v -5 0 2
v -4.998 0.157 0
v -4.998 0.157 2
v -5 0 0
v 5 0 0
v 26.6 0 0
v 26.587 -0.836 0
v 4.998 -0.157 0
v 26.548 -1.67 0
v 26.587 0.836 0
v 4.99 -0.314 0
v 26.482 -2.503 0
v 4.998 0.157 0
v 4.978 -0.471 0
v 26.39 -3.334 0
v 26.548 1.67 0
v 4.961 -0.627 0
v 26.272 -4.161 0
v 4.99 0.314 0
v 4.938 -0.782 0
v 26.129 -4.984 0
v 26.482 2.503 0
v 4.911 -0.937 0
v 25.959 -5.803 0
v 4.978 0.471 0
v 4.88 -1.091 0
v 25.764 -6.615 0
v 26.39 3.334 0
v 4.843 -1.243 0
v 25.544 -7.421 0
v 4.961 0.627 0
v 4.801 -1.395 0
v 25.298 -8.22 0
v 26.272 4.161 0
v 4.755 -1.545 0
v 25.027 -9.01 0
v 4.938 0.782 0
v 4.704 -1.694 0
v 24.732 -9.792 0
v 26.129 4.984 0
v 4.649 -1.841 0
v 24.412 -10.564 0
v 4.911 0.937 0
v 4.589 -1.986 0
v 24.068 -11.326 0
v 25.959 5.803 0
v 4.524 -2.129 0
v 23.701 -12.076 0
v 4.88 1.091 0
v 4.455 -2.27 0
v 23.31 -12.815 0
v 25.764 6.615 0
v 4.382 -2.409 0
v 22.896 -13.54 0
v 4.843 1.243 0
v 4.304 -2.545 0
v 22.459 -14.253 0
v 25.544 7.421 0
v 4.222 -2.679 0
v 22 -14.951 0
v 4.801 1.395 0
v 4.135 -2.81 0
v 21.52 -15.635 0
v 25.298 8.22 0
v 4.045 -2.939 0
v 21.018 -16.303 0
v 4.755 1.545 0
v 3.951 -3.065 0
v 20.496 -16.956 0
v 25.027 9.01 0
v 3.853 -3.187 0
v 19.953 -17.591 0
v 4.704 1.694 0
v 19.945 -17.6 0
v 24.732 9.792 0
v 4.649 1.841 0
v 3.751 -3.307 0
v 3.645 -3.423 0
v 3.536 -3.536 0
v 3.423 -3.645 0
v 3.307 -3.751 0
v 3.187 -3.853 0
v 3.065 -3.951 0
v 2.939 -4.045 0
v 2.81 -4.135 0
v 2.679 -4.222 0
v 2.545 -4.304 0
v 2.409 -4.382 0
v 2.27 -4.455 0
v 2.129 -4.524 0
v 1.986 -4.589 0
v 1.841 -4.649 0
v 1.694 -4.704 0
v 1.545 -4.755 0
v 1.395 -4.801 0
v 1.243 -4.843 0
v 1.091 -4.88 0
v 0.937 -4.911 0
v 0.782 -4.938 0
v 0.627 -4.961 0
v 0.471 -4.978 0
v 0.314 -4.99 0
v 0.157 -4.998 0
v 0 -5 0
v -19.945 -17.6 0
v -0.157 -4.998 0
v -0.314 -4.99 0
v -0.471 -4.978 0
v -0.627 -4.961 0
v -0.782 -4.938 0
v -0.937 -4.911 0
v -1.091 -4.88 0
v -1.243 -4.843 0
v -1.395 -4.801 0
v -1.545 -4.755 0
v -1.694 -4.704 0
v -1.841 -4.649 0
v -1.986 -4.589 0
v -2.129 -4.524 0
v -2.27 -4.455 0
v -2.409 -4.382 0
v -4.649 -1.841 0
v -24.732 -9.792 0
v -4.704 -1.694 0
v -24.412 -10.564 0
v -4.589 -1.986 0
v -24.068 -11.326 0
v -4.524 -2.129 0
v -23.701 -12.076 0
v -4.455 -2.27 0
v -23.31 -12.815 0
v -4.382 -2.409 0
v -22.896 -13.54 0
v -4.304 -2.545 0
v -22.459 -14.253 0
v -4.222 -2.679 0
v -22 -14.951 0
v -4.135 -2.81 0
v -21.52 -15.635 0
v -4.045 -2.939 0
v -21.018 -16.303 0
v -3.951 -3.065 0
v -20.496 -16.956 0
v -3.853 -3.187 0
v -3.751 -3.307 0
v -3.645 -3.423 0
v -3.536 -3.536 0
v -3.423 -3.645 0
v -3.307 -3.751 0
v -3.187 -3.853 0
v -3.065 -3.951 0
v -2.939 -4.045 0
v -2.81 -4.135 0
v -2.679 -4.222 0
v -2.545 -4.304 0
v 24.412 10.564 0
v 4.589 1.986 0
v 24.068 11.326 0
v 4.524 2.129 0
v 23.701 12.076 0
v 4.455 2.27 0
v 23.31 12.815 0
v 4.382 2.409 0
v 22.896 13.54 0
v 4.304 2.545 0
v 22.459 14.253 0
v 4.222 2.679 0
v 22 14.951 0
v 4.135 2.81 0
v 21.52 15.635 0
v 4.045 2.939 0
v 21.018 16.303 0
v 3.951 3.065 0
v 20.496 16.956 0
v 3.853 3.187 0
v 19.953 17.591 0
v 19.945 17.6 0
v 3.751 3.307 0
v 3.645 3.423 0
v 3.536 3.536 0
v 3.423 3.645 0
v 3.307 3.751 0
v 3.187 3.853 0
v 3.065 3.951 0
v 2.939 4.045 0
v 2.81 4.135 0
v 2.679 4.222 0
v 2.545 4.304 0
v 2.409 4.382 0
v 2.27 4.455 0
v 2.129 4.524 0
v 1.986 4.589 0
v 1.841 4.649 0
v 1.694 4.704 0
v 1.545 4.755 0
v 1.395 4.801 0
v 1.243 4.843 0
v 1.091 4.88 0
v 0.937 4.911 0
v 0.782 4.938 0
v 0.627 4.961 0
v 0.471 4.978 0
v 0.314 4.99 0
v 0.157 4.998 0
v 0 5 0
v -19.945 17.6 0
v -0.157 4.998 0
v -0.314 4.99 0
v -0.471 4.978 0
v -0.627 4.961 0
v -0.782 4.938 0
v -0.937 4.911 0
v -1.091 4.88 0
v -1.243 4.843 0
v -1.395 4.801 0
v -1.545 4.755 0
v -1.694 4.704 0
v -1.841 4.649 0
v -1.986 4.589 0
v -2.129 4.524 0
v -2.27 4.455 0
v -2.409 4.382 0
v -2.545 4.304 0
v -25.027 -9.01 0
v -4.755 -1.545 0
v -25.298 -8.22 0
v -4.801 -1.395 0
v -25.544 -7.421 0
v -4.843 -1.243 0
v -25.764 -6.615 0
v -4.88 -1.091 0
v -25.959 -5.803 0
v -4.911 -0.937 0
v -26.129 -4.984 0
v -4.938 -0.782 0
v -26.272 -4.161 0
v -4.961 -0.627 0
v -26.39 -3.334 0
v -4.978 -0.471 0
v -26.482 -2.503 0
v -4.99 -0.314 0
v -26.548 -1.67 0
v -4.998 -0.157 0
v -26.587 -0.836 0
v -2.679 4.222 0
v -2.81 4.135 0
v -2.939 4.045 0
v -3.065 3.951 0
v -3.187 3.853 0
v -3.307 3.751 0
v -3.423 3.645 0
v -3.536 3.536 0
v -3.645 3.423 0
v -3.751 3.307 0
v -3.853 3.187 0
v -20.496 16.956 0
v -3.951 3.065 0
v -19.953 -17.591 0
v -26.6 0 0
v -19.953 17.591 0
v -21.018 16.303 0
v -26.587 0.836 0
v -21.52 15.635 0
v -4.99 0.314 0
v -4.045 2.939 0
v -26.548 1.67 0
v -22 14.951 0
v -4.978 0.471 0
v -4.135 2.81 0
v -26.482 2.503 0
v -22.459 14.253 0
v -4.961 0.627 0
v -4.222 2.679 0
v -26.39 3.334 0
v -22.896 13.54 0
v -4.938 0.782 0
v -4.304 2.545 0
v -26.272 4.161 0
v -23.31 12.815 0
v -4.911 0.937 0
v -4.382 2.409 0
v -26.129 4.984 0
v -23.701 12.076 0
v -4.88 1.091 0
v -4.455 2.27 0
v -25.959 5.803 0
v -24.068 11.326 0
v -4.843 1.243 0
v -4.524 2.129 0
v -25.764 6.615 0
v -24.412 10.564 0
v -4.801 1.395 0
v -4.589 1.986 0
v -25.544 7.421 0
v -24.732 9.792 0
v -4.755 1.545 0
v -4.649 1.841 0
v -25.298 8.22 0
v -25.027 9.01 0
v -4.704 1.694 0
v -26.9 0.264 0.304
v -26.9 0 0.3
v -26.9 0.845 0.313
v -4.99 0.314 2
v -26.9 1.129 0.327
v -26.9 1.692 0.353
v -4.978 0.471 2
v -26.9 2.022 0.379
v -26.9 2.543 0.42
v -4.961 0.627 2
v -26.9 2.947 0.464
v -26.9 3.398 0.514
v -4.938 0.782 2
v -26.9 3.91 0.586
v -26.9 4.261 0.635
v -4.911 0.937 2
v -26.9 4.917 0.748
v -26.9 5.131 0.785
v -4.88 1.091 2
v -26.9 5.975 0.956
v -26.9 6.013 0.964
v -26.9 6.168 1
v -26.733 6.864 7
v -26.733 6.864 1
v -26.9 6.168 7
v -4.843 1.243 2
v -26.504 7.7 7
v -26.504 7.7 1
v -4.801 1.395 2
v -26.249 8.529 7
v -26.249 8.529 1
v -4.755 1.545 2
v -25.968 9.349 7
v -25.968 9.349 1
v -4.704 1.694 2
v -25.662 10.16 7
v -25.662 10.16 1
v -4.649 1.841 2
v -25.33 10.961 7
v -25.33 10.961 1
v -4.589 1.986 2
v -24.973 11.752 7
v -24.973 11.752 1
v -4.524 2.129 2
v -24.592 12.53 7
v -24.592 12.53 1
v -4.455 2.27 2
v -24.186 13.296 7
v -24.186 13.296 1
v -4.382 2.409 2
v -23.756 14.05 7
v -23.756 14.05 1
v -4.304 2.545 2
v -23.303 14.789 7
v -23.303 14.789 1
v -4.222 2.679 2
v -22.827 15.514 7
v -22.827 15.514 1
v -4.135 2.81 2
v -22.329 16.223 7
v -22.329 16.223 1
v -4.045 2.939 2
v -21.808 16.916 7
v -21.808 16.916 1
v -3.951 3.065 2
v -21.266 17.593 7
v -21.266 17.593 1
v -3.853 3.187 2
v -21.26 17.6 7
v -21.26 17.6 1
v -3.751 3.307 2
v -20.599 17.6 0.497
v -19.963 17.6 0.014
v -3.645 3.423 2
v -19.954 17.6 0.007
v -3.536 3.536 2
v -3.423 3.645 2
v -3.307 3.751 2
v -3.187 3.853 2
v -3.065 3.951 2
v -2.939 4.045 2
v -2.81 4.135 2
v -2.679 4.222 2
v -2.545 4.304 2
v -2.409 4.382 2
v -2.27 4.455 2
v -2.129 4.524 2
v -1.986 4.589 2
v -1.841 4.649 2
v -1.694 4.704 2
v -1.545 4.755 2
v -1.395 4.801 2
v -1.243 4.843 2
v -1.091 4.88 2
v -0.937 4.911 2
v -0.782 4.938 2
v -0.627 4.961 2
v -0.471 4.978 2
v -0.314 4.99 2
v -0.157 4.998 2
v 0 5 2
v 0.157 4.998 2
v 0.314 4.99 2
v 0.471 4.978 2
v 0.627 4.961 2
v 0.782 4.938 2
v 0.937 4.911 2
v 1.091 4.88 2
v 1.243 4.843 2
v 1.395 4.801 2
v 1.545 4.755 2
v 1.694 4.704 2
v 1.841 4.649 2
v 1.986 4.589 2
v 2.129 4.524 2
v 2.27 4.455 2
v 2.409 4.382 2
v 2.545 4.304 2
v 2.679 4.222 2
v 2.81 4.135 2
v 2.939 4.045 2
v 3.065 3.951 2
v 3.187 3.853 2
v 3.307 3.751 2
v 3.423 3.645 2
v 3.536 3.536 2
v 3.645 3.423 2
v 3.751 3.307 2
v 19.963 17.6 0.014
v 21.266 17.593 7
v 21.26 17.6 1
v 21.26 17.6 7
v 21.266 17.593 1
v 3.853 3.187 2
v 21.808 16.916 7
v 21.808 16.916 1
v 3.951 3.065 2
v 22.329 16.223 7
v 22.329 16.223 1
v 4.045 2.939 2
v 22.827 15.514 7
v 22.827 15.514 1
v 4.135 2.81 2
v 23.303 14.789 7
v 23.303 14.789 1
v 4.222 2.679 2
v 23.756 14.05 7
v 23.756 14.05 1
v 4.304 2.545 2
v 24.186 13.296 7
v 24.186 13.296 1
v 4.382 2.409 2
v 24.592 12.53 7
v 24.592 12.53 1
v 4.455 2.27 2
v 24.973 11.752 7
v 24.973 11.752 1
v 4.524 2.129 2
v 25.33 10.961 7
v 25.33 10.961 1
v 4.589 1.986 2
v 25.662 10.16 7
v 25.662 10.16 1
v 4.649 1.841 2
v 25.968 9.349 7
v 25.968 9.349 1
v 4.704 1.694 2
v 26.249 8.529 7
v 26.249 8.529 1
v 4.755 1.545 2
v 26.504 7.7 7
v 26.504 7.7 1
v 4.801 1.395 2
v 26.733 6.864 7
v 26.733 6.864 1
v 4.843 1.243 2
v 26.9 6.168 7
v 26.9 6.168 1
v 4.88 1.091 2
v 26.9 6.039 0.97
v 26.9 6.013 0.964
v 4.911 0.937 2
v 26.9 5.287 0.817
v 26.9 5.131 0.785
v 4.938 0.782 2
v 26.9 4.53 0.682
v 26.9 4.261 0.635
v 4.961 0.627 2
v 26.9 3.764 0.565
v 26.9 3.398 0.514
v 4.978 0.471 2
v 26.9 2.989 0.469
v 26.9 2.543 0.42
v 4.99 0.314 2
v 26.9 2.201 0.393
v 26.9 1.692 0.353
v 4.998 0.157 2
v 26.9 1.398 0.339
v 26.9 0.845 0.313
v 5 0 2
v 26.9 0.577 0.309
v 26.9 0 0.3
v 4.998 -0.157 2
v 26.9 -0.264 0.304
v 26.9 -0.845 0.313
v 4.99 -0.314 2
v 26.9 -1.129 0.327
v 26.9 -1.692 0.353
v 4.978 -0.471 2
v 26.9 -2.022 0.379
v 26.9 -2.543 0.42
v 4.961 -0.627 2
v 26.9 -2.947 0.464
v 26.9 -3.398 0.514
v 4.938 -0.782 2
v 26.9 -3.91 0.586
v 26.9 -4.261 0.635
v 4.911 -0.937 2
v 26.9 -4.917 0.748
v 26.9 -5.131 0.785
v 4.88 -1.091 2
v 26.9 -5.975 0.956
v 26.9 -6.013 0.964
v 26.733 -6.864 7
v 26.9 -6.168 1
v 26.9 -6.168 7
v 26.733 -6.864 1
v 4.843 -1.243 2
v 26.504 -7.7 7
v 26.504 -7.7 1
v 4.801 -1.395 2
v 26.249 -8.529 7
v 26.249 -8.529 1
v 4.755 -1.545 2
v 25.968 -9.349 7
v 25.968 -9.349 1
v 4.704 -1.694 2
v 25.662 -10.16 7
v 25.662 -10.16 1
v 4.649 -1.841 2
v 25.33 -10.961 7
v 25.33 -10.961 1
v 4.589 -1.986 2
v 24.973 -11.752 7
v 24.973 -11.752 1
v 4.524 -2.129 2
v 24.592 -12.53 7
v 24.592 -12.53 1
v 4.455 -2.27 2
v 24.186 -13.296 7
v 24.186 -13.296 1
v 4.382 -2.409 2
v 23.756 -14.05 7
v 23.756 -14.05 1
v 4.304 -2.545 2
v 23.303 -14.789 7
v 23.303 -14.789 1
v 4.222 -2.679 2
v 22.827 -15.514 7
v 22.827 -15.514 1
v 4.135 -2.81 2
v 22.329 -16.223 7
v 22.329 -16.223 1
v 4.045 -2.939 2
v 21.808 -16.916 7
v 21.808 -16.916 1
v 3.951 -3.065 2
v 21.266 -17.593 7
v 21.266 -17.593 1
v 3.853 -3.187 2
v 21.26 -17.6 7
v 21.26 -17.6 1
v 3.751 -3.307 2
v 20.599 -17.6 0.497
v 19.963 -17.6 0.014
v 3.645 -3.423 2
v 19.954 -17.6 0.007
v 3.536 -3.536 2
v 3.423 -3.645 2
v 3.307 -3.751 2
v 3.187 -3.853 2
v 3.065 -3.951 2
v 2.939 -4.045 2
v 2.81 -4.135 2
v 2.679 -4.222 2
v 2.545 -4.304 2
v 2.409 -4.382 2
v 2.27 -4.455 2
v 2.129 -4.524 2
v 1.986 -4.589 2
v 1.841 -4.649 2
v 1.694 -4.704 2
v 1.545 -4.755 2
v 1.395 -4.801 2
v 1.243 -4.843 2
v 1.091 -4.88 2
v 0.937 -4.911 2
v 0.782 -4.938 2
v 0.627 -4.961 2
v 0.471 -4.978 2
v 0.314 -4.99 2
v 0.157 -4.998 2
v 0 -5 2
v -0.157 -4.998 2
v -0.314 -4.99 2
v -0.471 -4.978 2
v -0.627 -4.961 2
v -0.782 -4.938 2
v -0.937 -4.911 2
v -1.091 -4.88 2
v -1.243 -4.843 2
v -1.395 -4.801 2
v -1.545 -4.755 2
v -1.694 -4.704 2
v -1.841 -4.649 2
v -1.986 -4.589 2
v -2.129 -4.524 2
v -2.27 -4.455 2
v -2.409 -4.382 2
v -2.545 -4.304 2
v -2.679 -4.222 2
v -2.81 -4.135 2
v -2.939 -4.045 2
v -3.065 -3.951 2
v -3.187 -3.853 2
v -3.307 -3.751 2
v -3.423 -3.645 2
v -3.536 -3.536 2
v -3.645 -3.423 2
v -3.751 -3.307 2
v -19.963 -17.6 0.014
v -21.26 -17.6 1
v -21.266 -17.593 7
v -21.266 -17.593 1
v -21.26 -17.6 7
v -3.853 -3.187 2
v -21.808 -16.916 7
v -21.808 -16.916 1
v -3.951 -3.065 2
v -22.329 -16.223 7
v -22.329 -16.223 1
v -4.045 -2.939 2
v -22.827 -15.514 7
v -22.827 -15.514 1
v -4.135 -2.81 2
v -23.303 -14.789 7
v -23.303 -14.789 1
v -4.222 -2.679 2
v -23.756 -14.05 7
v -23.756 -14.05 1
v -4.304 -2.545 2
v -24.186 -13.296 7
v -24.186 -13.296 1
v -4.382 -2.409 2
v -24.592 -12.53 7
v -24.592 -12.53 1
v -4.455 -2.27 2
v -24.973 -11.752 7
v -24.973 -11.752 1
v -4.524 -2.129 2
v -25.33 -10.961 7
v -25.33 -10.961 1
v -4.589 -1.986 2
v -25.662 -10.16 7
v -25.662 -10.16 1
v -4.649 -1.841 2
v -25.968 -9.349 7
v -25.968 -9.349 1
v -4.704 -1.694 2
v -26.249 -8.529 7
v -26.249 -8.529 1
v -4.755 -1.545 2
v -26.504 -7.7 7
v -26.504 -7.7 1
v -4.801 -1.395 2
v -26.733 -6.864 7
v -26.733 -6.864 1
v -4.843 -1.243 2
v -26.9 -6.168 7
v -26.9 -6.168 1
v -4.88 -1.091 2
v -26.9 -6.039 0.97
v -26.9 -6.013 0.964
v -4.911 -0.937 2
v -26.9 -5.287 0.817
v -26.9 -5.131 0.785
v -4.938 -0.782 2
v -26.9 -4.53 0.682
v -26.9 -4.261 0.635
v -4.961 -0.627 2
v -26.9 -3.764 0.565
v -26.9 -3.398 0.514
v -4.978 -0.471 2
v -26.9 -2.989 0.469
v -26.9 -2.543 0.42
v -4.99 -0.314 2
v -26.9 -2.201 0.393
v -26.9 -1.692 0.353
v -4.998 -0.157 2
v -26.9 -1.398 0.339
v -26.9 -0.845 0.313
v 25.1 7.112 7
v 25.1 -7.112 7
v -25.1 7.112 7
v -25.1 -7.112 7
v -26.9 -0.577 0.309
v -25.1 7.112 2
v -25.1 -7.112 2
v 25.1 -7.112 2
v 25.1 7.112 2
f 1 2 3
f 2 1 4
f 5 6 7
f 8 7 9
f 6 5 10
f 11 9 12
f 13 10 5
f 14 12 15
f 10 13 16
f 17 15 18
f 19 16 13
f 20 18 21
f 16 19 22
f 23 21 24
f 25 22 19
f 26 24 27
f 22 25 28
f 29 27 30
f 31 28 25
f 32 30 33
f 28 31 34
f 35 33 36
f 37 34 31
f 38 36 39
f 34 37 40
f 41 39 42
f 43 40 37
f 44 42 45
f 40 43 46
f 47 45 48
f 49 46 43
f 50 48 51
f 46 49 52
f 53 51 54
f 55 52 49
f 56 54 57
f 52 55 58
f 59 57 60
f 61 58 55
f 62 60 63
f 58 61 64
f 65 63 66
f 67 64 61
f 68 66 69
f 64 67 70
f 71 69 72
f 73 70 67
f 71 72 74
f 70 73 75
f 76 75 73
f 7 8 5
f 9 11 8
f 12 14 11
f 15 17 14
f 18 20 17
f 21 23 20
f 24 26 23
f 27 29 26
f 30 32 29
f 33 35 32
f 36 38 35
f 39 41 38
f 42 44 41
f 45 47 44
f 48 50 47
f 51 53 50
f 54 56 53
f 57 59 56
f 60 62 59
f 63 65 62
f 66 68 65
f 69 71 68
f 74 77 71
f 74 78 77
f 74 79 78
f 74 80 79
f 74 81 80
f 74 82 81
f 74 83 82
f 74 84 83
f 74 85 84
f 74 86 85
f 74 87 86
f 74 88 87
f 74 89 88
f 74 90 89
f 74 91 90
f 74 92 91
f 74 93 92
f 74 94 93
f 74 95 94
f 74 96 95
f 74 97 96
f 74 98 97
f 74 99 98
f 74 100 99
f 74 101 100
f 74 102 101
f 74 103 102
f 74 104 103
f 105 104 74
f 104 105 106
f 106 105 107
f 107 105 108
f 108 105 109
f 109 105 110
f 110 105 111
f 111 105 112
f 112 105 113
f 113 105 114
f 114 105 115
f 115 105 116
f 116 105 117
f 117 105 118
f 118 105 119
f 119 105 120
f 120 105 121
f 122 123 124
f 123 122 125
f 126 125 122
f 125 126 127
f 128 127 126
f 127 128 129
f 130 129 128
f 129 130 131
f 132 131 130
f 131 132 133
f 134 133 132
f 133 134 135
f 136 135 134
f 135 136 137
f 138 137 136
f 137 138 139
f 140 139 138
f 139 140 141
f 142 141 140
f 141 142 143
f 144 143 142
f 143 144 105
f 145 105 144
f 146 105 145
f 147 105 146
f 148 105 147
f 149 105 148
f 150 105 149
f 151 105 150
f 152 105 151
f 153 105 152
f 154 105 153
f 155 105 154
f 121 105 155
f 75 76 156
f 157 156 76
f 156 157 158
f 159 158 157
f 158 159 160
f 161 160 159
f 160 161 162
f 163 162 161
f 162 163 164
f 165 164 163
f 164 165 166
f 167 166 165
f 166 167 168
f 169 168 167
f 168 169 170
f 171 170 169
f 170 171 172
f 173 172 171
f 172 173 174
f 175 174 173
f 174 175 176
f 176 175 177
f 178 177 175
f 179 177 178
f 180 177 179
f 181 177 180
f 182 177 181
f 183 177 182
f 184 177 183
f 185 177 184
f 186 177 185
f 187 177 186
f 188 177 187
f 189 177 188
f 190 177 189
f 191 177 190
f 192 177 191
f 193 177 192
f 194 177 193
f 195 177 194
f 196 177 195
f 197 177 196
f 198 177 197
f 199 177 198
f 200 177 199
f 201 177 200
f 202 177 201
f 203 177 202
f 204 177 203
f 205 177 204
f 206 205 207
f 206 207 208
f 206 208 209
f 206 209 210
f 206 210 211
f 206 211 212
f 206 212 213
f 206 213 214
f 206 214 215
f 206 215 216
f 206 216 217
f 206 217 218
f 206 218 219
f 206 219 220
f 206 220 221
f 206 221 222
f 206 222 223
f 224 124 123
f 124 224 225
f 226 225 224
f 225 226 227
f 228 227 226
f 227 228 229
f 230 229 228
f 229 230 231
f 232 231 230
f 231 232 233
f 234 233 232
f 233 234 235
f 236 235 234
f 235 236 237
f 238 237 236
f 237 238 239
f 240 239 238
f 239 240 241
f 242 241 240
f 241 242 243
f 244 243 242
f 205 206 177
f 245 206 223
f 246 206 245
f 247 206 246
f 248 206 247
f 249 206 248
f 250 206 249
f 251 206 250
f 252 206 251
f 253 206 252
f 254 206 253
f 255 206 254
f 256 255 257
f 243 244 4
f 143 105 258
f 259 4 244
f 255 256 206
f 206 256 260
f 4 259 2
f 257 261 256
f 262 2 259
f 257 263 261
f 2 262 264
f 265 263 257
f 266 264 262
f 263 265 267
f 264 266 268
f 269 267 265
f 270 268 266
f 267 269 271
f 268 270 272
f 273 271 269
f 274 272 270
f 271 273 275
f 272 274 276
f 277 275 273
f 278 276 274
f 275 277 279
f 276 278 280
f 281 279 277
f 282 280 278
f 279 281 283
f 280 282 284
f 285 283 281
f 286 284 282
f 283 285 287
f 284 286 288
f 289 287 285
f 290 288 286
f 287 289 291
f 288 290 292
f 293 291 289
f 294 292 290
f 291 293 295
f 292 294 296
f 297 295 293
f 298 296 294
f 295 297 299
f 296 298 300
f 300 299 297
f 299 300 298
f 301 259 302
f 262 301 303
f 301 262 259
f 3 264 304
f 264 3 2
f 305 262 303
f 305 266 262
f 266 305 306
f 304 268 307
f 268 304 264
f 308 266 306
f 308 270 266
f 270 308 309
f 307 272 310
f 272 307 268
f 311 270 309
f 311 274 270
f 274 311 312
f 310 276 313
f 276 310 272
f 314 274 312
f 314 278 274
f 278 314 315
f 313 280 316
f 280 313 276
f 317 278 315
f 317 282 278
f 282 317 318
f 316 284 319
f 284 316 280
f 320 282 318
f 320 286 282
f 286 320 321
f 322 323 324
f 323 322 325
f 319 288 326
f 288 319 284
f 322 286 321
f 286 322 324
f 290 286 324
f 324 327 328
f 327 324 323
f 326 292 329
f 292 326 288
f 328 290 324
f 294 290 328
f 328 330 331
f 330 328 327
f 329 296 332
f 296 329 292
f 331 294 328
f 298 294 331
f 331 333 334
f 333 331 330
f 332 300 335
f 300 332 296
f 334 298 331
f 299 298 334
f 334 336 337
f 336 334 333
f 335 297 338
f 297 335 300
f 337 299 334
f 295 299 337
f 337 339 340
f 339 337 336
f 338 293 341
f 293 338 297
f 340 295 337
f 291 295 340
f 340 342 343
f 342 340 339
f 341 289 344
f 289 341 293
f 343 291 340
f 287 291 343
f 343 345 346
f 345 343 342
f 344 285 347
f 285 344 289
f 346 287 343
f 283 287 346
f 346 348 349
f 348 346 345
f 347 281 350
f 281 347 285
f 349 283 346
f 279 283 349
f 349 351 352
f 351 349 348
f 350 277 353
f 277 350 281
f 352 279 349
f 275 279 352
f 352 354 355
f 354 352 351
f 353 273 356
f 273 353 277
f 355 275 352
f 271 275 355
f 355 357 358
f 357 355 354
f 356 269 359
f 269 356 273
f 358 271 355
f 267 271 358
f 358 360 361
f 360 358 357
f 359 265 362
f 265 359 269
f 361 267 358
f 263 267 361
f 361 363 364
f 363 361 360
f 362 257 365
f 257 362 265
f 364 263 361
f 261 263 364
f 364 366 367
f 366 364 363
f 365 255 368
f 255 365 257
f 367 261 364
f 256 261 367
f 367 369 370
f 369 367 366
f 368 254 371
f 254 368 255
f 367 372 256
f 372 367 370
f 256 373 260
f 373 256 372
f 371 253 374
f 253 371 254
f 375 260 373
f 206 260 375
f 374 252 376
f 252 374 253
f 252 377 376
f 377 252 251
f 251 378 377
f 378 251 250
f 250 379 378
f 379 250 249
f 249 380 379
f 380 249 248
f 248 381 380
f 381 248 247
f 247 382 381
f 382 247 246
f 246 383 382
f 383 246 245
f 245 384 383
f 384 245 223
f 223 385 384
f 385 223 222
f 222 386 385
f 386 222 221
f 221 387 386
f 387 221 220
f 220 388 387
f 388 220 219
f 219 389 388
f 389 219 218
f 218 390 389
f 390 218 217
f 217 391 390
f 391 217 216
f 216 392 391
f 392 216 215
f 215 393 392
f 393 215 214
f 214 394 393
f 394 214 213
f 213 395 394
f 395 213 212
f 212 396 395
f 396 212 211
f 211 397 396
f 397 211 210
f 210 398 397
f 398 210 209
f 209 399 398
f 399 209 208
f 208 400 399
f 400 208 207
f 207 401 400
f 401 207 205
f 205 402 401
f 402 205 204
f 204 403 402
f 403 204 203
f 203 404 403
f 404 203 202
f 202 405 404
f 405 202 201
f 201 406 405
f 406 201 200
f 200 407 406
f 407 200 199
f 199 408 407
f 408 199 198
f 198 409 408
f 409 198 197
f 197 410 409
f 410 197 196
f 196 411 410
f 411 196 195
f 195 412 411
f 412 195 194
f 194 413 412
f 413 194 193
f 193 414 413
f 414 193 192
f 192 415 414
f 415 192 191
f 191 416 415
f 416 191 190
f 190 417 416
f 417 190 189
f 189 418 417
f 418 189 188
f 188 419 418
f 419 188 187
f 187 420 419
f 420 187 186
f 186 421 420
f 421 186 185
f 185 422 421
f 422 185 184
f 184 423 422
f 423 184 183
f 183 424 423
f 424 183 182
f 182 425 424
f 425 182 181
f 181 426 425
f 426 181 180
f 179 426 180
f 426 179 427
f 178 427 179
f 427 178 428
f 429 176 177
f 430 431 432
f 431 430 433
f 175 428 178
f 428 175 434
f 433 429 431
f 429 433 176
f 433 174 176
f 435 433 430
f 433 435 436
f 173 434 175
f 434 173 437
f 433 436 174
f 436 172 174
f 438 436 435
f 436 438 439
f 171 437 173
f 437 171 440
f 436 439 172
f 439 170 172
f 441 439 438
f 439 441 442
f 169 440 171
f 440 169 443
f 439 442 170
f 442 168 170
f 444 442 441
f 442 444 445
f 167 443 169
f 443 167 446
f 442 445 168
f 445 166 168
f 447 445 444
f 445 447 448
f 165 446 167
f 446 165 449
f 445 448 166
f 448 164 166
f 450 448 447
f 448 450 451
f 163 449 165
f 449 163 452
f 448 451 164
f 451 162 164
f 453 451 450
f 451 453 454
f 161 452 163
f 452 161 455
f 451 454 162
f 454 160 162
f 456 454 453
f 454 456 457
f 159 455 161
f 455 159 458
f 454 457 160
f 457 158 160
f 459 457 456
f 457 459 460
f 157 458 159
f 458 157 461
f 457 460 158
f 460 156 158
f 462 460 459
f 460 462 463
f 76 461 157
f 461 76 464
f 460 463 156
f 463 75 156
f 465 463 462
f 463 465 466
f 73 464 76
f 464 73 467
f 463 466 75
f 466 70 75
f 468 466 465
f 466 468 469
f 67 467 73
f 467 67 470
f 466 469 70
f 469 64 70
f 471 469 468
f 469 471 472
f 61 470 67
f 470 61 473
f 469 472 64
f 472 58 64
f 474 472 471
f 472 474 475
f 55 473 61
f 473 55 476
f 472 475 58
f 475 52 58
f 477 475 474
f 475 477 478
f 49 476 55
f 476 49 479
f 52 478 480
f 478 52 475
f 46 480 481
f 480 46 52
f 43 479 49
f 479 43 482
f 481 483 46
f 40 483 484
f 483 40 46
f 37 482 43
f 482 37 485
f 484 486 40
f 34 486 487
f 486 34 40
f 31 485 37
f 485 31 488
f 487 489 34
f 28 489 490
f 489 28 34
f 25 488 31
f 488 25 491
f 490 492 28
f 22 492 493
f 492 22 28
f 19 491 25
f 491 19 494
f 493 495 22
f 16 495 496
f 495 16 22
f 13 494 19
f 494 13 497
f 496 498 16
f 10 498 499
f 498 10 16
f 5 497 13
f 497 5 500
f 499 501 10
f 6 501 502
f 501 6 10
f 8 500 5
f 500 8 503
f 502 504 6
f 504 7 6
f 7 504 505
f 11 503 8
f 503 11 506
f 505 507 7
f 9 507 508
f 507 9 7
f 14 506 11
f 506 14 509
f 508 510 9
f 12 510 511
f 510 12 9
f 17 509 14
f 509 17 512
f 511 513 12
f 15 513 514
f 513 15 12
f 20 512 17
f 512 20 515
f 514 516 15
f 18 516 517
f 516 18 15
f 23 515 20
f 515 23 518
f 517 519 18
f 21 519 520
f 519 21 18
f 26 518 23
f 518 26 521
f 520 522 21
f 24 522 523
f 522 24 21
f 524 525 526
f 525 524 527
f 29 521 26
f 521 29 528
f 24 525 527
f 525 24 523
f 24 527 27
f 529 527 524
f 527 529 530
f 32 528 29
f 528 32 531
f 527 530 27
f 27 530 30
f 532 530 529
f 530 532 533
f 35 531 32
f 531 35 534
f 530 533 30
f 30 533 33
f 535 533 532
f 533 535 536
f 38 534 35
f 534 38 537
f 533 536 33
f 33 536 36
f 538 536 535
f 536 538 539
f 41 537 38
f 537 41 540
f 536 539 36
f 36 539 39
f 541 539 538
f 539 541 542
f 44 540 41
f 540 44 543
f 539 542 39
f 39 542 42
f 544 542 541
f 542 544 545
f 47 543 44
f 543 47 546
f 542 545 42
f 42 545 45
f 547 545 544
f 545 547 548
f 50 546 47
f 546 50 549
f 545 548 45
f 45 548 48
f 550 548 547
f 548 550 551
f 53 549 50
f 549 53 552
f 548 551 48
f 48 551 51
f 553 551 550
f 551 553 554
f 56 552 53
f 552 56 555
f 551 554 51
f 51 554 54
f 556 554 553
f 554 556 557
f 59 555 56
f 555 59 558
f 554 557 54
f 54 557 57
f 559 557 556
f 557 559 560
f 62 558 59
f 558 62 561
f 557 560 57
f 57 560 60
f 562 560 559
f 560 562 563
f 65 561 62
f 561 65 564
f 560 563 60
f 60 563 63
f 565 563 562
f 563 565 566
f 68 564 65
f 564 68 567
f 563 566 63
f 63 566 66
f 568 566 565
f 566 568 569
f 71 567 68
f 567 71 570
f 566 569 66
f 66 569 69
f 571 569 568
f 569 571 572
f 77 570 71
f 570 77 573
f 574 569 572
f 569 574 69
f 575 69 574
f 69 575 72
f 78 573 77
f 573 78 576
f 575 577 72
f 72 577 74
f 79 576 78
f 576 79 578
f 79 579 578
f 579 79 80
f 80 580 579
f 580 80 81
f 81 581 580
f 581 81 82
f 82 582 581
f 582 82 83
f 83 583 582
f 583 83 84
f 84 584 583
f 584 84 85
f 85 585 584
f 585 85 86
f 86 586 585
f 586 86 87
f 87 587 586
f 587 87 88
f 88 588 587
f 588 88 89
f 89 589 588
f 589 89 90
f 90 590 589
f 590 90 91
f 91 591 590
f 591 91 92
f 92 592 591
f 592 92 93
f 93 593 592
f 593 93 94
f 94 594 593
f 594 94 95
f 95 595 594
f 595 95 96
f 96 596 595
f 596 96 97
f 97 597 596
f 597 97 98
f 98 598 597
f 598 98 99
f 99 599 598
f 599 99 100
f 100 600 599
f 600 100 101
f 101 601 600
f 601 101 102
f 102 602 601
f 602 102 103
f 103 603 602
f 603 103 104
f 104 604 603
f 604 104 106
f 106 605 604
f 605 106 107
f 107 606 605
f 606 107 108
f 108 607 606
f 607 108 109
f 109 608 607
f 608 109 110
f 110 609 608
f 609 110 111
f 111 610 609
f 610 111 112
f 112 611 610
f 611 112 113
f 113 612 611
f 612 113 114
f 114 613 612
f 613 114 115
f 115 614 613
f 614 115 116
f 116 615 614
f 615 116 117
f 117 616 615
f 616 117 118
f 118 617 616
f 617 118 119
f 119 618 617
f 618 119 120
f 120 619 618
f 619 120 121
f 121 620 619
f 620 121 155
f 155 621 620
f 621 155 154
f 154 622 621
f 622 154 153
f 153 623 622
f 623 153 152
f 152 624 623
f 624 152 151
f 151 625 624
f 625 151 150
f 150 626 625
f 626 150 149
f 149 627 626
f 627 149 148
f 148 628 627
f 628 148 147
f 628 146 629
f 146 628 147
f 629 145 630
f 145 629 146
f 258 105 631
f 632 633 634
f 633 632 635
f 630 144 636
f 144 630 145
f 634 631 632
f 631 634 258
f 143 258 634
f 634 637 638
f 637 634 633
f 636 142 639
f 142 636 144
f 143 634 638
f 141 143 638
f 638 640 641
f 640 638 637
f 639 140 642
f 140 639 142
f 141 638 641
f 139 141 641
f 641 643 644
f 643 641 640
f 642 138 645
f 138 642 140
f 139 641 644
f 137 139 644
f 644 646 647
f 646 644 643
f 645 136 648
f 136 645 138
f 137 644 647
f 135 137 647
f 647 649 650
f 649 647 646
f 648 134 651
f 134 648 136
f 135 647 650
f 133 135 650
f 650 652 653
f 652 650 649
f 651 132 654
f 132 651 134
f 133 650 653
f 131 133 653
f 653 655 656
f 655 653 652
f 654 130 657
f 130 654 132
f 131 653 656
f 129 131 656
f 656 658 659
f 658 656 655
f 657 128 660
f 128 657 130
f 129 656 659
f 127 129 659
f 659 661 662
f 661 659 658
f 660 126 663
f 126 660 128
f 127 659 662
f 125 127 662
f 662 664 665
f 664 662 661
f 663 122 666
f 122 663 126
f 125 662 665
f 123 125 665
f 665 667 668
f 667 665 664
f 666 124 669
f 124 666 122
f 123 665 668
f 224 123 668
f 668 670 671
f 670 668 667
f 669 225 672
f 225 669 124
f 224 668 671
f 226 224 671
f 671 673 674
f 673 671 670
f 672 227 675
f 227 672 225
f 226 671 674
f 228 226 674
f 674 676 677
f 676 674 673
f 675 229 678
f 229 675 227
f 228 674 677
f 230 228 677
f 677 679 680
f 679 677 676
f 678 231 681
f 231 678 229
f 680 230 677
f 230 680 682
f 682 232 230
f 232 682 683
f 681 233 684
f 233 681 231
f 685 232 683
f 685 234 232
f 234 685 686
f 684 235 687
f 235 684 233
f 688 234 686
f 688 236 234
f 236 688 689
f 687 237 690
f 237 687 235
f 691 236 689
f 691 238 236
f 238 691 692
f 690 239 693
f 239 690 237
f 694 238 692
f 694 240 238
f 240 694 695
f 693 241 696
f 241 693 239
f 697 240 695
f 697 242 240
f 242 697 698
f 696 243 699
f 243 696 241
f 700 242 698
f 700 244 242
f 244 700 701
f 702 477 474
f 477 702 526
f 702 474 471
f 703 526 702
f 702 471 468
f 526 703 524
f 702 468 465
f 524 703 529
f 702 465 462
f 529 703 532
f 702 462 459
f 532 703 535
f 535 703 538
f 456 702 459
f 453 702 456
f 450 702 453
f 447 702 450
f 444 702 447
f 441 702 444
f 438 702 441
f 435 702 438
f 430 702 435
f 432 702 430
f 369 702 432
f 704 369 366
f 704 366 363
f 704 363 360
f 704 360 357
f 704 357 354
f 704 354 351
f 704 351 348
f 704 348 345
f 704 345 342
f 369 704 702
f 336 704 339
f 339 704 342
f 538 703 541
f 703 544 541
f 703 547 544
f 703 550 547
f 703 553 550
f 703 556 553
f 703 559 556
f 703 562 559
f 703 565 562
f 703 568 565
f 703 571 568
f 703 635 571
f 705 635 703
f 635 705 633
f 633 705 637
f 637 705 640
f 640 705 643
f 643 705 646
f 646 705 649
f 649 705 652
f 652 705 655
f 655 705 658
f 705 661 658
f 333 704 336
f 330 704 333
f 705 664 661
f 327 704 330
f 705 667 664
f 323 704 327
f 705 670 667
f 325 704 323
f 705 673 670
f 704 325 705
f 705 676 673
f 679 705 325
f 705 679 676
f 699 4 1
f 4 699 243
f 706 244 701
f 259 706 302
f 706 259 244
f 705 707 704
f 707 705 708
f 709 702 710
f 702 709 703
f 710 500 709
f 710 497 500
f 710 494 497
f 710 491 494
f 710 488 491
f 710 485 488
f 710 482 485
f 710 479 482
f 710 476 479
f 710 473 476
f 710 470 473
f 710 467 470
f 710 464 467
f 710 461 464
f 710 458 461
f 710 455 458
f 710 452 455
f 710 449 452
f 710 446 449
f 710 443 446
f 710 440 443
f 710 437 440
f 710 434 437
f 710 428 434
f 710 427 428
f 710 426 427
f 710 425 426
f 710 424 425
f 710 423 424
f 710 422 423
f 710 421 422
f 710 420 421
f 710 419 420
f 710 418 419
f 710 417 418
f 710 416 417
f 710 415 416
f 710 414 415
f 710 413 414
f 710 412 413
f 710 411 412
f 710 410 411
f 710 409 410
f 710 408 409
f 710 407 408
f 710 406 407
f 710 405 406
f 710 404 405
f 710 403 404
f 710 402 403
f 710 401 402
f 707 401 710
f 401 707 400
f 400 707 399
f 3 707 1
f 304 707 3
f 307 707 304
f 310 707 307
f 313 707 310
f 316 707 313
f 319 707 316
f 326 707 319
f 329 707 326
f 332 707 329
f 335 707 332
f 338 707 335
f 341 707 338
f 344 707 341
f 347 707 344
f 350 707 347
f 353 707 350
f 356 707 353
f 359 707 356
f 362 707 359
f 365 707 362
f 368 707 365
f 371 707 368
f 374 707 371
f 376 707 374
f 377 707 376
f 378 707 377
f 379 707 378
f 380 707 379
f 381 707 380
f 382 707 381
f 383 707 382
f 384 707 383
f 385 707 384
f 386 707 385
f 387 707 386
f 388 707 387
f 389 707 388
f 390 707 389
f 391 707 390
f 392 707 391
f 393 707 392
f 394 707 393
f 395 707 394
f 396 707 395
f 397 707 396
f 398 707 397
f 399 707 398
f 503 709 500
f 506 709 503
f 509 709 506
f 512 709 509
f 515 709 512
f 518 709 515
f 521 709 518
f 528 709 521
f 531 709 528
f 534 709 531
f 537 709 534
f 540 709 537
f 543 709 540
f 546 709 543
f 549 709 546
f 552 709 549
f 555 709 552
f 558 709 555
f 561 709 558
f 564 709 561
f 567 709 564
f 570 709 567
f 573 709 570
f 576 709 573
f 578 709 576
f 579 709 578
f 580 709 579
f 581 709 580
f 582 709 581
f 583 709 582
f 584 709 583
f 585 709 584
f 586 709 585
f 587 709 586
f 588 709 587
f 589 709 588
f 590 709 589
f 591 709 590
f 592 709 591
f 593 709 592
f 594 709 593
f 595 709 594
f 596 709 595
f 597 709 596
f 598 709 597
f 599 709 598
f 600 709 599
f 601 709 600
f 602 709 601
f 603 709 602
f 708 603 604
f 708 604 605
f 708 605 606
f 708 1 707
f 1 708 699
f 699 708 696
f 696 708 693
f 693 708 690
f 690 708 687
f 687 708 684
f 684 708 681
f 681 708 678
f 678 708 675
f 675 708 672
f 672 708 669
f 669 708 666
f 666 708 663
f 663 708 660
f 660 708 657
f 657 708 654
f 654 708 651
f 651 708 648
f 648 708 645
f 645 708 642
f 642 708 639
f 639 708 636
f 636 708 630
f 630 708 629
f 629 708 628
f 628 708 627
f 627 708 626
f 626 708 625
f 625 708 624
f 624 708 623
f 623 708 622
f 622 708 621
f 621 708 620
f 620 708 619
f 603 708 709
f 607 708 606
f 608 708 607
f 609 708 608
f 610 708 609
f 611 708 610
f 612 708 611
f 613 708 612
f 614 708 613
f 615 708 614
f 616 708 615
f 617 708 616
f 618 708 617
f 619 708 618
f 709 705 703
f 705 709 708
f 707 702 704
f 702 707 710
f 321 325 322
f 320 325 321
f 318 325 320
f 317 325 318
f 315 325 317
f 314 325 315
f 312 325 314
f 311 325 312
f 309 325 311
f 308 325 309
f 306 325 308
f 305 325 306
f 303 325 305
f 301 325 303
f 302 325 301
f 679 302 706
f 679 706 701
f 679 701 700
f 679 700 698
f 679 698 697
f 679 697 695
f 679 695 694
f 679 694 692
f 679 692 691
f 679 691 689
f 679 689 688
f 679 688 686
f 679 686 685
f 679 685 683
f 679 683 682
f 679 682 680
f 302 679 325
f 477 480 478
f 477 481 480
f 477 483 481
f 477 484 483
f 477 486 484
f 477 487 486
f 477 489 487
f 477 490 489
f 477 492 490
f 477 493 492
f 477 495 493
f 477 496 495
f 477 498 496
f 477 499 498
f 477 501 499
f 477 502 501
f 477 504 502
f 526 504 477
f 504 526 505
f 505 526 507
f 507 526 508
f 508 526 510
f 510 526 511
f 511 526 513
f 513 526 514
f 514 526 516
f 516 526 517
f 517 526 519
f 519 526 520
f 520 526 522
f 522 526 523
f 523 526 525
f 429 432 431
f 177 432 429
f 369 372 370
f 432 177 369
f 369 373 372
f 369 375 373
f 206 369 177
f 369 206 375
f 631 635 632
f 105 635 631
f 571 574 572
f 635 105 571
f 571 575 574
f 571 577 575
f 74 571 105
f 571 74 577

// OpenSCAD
// file: RocketCouplers.scad
bt20id = 18.0;  // Motors ABC
bt50id = 24.1;  // Motors DE
bt52hid = 29.0; // Motors EFG
bt55id = 32.6;
bt60id = 40.6;
bt70id = 55.2;
bt80id = 65.0;

bt20od = 18.7;
bt50od = 24.8;
bt52hod = 31.0;
bt55od = 33.7;
bt60od = 41.7;
bt70od = 56.3;
bt80od = 66.0;

module hollowCylinderAsBase(r,wall,h)
{
    pts = [
        [r-wall,h],
        [r,h],
        [r,1],
        [r-1,0],
        [r-wall,0]];
    rotate_extrude()
    polygon(pts,convexity=2);
}

module hollowCylinderWithDrop(r,wall,h)
{
    pts = [
        [r-wall,h],
        [r,h],
        [r,0],
        [r-wall/2,-wall/2],
        [r-wall,0]];
    rotate_extrude()
    polygon(pts,convexity=2);
}

module hollowConeWithDrop(r1,r2,wall,h)
{
    pts = [
    [r2-wall,h],
    [r2,h],
    [r1,0],
    [r1-wall/2,-wall/2],
    [r1-wall,0]];
    rotate_extrude()
    polygon(pts,convexity=2);
}

module hollowConeWithDropAndHole(r1,r2,wall,h)
{
    pts = [
    [r2-wall,h],
    [r2,h],
    [r1,0],
    [r1-wall/2,-wall/2],
    [r1-wall,0]];
    difference()
    {
        rotate_extrude()
        polygon(pts,convexity=2);
        translate([(r1+r2-wall)/2.0,0])
        cylinder(r=wall/1.5,h);
    }
}

// This is a spherical cap that has a slope of -1 at its edge.

module capWithDrop(r)
{
    rho = 1.414*r;
    translate([0,0,-r])
    intersection()
    {
        sphere(rho,$fn=50);
        cylinder(r1=0,r2=2*rho,h=2*rho);
        translate([-2*rho,-2*rho,r-1])
        cube(4*rho);
    }    
}

//capWithDrop(10);

/*
wall = 3;
h1 = 10;
h2 = 25;
h3 = 10;
hollowCylinderAsBase(bt55id/2,wall,h1);
translate([0,0,h1])
hollowConeWithDropAndHole(bt55od/2,bt70od/2,wall,h2);
translate([0,0,h1+h2])
hollowCylinderWithDrop(bt70id/2,wall,h3);
*/
// main file
$fn = 200;
inch = 25.4;

include <RocketCouplers.scad>
bt70adj = 0.0;

couplingTube = 0.03*inch;

r4 = bt70id/2 - bt70adj;
//r4 = bt70id/2 - bt70adj - couplingTube;
wall = r4-5;
cutoutLength = 50.0 + 0.2; // Firm fit on Prusa
cutoutWidth = (0.56)*inch; // Firm fit on Prusa

h1 = 7;

intersection()
{
    difference()
    {
        hollowCylinderAsBase(r4,wall,h1);
        translate([-cutoutLength/2,-cutoutWidth/2,2])
        cube([cutoutLength,cutoutWidth,h1]);
    }
    cube([cutoutLength+3.6,bt70id-20,2*h1],center=true);
}
